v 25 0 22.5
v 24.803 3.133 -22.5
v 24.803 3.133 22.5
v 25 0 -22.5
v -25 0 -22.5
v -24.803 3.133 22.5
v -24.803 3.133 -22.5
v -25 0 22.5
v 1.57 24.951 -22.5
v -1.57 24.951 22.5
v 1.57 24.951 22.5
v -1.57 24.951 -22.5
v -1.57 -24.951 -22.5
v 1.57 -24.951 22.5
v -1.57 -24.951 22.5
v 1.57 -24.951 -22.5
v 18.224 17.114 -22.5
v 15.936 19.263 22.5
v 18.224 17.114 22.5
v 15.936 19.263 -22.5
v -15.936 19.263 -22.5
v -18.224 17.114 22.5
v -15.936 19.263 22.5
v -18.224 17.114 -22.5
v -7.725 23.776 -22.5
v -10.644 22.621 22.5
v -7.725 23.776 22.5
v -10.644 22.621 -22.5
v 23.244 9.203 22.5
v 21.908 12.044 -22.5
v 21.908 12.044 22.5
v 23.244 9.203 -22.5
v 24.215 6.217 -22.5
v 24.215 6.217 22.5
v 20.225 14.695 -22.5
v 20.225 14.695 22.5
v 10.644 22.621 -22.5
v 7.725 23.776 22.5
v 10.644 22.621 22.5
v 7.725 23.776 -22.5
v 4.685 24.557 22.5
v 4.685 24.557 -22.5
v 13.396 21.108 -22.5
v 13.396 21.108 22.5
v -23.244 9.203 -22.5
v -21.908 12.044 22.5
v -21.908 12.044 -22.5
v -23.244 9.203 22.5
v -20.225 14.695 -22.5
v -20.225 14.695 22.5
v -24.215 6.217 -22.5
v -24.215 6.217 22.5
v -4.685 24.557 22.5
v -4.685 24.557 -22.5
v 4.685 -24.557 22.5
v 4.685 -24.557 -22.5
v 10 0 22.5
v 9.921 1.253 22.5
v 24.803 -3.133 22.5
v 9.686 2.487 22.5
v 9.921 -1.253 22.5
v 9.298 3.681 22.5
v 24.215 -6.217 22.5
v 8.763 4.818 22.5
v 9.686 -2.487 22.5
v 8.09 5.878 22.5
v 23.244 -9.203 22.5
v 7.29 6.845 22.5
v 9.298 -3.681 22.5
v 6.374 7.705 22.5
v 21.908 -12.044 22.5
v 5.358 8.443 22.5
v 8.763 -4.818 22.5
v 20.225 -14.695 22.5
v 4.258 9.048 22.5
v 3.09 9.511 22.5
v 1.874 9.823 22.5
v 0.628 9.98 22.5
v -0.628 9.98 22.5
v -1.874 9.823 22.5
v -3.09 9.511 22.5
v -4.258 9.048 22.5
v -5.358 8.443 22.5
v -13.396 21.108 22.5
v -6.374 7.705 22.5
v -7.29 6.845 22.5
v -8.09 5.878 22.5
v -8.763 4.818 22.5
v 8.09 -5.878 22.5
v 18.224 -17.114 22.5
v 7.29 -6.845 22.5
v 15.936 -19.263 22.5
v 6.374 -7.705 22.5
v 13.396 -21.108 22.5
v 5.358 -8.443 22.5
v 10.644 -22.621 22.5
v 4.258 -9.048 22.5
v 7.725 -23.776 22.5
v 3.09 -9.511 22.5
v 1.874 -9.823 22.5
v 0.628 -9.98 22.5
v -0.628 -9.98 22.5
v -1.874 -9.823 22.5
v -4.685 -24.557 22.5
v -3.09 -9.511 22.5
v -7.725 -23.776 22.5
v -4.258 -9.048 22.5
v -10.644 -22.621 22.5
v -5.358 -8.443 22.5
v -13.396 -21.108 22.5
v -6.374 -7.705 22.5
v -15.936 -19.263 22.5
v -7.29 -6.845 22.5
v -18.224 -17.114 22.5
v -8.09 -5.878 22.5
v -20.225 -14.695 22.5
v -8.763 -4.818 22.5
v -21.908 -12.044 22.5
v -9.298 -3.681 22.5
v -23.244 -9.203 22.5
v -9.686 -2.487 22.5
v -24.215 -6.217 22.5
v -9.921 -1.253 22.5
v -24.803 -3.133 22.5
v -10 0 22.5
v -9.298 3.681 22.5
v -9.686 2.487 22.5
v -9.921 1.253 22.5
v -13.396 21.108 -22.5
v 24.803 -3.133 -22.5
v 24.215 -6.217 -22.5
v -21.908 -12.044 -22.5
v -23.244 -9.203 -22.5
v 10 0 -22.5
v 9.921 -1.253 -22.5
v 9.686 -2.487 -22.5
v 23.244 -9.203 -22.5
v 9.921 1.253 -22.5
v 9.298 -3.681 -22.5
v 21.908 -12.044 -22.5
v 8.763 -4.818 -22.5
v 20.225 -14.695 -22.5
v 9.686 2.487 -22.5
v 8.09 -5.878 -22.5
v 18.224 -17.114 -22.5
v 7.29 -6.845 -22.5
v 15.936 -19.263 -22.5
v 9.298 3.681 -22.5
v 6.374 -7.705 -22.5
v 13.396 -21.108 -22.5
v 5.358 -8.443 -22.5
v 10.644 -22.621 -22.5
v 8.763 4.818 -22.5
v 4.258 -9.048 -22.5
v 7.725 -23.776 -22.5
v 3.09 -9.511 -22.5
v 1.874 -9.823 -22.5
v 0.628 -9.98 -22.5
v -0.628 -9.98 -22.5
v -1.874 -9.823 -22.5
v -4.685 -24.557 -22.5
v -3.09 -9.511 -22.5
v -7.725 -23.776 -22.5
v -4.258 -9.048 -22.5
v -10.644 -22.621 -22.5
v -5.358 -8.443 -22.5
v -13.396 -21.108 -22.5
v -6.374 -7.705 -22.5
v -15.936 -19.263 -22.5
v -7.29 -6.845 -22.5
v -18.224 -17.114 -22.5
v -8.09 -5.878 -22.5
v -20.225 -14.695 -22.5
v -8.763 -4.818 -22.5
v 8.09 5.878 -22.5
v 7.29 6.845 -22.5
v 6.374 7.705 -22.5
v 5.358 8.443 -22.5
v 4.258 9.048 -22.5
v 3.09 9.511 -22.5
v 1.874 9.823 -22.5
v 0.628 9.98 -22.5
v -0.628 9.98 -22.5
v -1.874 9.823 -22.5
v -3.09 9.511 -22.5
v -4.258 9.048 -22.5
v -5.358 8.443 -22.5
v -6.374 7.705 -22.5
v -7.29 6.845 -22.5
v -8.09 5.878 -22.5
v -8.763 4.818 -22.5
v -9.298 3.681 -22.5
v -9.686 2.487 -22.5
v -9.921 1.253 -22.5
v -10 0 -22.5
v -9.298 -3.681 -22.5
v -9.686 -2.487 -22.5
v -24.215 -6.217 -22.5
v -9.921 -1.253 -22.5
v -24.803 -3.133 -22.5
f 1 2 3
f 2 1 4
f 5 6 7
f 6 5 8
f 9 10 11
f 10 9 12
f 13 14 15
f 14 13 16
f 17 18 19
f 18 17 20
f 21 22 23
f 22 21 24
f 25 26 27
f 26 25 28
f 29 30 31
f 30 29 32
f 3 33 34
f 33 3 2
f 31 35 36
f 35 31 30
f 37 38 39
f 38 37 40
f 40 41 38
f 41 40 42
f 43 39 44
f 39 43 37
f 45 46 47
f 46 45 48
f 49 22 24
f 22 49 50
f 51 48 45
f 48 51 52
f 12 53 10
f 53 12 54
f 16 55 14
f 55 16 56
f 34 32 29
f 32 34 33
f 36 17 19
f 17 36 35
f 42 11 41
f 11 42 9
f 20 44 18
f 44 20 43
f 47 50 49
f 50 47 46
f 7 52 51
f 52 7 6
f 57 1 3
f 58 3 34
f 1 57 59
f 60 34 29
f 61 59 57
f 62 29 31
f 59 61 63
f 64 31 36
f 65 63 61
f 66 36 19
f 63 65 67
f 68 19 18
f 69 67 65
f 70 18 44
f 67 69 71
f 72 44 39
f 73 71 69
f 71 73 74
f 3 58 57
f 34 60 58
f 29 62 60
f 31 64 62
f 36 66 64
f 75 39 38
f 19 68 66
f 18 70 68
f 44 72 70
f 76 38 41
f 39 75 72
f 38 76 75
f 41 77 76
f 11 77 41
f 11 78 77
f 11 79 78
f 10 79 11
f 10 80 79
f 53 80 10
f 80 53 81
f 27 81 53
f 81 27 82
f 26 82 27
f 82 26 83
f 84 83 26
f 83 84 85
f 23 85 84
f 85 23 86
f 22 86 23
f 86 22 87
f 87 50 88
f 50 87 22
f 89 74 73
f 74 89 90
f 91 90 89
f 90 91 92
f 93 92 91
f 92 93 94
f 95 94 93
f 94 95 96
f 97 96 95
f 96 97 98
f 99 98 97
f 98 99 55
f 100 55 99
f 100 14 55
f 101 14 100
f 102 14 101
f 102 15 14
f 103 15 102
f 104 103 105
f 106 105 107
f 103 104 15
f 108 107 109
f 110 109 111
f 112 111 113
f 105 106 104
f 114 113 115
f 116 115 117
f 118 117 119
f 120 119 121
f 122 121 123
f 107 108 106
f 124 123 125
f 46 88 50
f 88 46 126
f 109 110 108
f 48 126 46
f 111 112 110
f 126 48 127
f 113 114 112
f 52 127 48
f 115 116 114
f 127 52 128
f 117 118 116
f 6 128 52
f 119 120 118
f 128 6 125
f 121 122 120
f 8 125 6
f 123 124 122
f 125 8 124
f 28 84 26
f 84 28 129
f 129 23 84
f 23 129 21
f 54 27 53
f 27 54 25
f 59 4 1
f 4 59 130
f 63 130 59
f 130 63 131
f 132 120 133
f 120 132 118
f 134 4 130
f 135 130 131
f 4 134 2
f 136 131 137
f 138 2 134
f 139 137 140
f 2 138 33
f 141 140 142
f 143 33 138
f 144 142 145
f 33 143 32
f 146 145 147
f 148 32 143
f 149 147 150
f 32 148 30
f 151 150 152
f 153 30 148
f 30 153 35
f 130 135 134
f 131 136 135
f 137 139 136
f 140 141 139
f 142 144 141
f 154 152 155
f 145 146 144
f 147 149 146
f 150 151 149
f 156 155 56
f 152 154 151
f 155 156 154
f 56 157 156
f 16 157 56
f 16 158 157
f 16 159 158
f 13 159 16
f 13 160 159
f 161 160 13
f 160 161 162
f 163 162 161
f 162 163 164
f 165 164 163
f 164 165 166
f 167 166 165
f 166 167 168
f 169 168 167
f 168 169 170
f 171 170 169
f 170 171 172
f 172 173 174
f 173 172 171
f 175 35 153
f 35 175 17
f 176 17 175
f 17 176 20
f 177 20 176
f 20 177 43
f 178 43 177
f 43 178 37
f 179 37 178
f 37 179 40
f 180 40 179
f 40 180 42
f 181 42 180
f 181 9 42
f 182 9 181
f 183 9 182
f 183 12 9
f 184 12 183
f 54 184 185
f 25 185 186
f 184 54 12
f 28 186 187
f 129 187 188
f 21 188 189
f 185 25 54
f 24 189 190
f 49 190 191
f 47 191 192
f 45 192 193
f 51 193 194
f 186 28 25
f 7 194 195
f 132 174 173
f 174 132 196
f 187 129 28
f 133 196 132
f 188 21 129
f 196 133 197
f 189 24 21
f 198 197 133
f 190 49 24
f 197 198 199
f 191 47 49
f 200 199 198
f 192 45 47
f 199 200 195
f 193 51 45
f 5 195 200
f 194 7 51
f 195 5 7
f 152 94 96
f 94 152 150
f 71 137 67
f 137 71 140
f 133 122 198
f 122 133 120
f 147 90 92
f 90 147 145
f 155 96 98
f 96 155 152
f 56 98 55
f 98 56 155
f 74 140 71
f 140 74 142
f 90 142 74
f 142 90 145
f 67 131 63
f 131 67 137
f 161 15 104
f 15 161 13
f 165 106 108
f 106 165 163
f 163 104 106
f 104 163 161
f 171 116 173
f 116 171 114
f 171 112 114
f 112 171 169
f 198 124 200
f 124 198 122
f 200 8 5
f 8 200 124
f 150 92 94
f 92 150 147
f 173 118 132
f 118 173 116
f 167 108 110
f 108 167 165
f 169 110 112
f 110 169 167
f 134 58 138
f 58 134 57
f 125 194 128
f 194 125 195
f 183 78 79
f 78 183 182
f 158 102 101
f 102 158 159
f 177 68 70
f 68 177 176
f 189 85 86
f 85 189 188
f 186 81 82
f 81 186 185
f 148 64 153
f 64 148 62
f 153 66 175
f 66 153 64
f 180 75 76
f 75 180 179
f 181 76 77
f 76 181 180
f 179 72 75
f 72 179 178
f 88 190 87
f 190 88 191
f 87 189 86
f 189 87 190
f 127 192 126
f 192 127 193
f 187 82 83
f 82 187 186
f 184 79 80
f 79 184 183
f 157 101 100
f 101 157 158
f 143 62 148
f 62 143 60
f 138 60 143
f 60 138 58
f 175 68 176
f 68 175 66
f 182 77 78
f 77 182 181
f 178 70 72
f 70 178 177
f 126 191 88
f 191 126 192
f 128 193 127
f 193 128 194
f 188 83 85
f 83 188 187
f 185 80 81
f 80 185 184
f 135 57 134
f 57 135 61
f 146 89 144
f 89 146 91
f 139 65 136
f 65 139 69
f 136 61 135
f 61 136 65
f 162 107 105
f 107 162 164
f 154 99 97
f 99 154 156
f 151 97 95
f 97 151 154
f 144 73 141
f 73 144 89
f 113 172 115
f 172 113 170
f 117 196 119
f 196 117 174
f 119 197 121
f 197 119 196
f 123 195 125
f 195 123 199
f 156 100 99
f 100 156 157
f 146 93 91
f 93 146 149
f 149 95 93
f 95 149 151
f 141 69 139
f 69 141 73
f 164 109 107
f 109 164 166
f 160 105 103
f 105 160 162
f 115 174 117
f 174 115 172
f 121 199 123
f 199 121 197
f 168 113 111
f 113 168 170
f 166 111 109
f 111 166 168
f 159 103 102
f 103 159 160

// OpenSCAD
$fn = 50;


difference() {
	union() {
		translate(v = [0, 0, -22.5000000000]) {
			cylinder(h = 45, r = 25.0000000000);
		}
	}
	union() {
		translate(v = [0, 0, -100.0000000000]) {
			cylinder(h = 200, r = 10);
		}
	}
}
